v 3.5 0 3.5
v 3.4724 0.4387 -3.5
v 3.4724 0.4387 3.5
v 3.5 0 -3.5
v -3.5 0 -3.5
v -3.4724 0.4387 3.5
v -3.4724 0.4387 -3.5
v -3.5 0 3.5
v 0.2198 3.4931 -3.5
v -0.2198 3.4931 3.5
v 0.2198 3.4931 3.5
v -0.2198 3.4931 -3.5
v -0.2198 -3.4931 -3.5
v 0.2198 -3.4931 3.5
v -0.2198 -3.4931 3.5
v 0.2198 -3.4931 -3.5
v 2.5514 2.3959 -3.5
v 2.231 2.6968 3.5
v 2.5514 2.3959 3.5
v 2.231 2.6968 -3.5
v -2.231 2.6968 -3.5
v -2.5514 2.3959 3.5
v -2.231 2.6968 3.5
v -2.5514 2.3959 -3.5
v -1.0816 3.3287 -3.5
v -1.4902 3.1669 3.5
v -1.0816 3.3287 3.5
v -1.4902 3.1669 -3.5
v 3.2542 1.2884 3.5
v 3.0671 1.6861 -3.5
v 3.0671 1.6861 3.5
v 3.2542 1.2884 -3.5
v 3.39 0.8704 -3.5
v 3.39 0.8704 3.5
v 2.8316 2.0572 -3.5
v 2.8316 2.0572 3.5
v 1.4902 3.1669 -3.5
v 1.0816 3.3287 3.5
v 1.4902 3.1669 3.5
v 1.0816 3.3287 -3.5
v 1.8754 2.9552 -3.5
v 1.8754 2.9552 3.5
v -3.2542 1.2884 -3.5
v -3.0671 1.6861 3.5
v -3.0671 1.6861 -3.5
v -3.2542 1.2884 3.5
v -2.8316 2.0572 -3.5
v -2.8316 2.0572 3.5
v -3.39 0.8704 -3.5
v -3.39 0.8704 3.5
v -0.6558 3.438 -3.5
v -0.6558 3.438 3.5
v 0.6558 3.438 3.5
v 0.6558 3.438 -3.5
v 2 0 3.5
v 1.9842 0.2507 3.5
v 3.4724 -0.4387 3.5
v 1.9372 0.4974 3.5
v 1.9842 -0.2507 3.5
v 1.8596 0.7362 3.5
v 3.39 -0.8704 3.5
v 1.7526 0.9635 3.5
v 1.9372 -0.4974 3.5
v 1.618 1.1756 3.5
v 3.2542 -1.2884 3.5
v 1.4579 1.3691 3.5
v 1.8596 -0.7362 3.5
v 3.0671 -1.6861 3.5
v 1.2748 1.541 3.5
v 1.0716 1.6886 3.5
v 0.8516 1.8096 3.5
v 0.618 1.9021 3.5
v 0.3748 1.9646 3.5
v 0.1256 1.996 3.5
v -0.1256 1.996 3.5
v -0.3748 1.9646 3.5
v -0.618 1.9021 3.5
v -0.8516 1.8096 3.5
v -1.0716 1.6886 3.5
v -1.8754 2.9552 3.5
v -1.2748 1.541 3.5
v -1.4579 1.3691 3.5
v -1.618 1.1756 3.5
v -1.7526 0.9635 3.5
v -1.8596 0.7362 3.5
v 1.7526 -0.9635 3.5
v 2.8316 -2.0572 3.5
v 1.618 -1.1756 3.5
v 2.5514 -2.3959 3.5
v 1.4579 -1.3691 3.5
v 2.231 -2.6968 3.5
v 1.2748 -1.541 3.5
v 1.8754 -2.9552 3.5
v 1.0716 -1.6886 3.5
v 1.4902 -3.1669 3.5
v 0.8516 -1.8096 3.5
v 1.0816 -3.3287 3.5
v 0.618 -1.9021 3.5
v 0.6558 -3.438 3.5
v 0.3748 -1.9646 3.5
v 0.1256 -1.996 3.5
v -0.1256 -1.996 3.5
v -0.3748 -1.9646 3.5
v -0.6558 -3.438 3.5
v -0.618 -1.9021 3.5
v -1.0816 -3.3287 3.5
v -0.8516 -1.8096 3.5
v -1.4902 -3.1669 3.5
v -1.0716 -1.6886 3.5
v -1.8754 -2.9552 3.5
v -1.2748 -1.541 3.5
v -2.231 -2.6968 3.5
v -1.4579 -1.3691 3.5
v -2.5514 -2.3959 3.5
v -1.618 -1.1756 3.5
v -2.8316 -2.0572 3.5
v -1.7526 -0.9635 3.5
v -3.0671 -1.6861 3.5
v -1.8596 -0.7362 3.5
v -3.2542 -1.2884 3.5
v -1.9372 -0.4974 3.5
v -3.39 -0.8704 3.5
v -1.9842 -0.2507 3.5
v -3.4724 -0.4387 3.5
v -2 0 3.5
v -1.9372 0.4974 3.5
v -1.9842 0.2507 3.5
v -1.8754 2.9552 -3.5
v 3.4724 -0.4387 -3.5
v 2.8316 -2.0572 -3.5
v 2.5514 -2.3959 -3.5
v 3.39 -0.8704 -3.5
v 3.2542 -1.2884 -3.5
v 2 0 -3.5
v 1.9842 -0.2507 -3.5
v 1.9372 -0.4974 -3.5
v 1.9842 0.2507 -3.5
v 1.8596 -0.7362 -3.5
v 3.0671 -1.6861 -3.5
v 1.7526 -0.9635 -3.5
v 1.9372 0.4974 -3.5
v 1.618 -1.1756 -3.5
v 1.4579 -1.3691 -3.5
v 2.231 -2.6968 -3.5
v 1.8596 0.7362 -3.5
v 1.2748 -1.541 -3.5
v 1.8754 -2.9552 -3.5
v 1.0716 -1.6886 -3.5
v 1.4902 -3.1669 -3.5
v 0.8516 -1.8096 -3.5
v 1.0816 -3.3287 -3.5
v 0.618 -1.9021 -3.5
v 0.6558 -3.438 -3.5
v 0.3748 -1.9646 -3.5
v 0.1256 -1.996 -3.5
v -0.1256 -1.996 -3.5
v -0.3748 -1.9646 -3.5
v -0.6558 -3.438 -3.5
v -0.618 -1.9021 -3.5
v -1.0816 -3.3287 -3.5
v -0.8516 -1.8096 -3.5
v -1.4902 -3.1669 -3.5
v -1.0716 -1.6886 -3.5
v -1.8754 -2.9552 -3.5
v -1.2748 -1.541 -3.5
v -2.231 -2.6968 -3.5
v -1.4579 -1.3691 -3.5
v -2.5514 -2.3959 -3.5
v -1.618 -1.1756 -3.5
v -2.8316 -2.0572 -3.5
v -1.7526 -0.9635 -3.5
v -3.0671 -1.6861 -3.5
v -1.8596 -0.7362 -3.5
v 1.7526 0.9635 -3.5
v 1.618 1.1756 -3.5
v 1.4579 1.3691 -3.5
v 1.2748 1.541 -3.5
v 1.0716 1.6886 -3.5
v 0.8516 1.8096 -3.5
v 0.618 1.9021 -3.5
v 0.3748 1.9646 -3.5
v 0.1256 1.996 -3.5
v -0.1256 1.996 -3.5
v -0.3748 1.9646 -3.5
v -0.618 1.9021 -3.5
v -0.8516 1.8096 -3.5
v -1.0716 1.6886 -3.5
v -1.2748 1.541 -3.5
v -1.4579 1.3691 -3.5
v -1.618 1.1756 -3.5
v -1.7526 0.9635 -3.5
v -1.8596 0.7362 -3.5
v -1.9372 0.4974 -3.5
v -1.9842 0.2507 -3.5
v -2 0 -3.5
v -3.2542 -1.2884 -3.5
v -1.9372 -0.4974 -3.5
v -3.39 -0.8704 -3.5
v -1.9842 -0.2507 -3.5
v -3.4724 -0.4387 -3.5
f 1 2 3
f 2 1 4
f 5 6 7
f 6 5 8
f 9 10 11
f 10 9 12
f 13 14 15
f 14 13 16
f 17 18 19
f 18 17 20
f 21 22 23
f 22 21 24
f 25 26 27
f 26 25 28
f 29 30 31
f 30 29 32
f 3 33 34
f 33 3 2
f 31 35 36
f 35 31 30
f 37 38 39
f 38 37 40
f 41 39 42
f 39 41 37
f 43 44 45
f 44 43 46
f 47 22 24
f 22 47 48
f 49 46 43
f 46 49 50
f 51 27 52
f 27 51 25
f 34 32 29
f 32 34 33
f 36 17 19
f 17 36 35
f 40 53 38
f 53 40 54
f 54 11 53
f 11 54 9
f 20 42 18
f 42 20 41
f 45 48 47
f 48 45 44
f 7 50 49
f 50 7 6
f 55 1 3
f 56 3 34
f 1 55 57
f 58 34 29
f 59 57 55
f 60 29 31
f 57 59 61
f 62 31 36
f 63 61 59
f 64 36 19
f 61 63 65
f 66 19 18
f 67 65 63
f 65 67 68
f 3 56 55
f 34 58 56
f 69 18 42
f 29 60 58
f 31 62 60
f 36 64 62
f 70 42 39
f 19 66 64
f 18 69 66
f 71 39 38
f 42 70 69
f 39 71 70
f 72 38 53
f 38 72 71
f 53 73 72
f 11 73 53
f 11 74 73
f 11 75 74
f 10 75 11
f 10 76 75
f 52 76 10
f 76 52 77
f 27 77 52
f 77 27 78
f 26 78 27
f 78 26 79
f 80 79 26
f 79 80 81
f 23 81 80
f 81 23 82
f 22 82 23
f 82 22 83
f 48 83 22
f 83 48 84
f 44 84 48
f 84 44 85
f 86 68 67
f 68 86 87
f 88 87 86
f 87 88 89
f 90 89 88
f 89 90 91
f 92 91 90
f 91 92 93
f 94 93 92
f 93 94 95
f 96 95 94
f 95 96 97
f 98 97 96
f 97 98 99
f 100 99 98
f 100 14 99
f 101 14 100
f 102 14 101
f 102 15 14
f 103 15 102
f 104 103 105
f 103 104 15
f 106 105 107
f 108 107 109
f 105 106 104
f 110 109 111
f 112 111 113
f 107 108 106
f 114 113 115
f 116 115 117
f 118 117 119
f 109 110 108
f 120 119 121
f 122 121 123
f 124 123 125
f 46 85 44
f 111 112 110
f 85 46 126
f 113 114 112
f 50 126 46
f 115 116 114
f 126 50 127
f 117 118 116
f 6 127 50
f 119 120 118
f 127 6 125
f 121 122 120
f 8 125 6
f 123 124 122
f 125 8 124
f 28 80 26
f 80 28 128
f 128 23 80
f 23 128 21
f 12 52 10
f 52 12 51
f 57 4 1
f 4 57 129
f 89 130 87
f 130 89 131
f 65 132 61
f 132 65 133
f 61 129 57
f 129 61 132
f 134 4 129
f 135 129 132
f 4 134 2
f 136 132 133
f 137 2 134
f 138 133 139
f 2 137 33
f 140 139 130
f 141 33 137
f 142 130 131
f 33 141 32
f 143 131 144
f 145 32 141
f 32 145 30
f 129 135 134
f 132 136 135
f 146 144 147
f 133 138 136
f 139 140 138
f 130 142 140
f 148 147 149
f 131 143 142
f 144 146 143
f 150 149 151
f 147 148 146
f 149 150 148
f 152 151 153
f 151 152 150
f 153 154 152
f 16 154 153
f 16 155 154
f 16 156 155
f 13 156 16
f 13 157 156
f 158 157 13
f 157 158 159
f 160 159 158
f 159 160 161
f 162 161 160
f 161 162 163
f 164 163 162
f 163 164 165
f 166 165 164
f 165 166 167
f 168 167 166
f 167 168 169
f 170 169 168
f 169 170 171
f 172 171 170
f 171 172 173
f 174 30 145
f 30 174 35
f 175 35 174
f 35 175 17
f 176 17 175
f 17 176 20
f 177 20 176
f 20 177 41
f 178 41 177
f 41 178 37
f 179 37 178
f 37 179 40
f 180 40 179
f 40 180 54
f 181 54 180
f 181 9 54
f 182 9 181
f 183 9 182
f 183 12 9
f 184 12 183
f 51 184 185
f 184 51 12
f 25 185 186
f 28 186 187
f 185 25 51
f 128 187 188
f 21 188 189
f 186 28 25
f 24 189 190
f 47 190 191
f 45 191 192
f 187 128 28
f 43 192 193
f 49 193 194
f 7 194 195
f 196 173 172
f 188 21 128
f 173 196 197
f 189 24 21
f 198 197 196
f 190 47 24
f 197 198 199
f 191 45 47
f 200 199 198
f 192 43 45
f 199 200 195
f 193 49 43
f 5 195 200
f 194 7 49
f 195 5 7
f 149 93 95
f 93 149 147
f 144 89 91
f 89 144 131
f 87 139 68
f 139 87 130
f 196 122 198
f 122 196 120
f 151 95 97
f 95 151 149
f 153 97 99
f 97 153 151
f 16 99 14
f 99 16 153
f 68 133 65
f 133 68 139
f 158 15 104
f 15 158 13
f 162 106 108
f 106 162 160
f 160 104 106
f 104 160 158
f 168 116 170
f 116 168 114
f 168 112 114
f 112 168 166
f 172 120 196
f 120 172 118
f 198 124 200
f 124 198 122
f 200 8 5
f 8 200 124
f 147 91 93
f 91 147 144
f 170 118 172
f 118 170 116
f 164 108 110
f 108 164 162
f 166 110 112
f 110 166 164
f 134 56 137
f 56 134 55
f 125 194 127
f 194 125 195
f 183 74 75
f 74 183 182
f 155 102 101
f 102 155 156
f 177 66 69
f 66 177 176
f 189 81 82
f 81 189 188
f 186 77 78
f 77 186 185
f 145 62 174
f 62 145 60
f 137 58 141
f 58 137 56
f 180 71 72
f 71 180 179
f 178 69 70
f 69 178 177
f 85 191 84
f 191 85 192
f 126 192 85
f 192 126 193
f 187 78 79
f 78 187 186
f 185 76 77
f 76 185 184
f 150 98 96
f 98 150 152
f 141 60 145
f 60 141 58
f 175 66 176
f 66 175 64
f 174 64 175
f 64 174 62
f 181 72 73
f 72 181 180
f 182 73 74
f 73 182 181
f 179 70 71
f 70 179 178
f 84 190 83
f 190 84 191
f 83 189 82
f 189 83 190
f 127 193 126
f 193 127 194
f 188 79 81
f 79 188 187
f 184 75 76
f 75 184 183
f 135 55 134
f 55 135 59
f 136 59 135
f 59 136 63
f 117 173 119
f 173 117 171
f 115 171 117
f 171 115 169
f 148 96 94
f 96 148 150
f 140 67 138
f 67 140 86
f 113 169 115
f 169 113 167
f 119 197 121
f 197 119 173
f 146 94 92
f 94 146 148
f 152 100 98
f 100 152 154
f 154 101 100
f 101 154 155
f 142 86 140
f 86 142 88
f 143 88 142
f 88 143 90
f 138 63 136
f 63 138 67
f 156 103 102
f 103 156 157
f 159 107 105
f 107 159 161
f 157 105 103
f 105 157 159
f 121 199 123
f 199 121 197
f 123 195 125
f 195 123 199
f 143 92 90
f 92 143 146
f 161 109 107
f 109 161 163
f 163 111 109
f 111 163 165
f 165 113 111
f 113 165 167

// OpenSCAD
$fn = 50;


difference() {
	union() {
		translate(v = [0, 0, -3.5000000000]) {
			cylinder(h = 7, r = 3.5000000000);
		}
	}
	union() {
		translate(v = [0, 0, -100.0000000000]) {
			cylinder(h = 200, r = 2);
		}
	}
}
